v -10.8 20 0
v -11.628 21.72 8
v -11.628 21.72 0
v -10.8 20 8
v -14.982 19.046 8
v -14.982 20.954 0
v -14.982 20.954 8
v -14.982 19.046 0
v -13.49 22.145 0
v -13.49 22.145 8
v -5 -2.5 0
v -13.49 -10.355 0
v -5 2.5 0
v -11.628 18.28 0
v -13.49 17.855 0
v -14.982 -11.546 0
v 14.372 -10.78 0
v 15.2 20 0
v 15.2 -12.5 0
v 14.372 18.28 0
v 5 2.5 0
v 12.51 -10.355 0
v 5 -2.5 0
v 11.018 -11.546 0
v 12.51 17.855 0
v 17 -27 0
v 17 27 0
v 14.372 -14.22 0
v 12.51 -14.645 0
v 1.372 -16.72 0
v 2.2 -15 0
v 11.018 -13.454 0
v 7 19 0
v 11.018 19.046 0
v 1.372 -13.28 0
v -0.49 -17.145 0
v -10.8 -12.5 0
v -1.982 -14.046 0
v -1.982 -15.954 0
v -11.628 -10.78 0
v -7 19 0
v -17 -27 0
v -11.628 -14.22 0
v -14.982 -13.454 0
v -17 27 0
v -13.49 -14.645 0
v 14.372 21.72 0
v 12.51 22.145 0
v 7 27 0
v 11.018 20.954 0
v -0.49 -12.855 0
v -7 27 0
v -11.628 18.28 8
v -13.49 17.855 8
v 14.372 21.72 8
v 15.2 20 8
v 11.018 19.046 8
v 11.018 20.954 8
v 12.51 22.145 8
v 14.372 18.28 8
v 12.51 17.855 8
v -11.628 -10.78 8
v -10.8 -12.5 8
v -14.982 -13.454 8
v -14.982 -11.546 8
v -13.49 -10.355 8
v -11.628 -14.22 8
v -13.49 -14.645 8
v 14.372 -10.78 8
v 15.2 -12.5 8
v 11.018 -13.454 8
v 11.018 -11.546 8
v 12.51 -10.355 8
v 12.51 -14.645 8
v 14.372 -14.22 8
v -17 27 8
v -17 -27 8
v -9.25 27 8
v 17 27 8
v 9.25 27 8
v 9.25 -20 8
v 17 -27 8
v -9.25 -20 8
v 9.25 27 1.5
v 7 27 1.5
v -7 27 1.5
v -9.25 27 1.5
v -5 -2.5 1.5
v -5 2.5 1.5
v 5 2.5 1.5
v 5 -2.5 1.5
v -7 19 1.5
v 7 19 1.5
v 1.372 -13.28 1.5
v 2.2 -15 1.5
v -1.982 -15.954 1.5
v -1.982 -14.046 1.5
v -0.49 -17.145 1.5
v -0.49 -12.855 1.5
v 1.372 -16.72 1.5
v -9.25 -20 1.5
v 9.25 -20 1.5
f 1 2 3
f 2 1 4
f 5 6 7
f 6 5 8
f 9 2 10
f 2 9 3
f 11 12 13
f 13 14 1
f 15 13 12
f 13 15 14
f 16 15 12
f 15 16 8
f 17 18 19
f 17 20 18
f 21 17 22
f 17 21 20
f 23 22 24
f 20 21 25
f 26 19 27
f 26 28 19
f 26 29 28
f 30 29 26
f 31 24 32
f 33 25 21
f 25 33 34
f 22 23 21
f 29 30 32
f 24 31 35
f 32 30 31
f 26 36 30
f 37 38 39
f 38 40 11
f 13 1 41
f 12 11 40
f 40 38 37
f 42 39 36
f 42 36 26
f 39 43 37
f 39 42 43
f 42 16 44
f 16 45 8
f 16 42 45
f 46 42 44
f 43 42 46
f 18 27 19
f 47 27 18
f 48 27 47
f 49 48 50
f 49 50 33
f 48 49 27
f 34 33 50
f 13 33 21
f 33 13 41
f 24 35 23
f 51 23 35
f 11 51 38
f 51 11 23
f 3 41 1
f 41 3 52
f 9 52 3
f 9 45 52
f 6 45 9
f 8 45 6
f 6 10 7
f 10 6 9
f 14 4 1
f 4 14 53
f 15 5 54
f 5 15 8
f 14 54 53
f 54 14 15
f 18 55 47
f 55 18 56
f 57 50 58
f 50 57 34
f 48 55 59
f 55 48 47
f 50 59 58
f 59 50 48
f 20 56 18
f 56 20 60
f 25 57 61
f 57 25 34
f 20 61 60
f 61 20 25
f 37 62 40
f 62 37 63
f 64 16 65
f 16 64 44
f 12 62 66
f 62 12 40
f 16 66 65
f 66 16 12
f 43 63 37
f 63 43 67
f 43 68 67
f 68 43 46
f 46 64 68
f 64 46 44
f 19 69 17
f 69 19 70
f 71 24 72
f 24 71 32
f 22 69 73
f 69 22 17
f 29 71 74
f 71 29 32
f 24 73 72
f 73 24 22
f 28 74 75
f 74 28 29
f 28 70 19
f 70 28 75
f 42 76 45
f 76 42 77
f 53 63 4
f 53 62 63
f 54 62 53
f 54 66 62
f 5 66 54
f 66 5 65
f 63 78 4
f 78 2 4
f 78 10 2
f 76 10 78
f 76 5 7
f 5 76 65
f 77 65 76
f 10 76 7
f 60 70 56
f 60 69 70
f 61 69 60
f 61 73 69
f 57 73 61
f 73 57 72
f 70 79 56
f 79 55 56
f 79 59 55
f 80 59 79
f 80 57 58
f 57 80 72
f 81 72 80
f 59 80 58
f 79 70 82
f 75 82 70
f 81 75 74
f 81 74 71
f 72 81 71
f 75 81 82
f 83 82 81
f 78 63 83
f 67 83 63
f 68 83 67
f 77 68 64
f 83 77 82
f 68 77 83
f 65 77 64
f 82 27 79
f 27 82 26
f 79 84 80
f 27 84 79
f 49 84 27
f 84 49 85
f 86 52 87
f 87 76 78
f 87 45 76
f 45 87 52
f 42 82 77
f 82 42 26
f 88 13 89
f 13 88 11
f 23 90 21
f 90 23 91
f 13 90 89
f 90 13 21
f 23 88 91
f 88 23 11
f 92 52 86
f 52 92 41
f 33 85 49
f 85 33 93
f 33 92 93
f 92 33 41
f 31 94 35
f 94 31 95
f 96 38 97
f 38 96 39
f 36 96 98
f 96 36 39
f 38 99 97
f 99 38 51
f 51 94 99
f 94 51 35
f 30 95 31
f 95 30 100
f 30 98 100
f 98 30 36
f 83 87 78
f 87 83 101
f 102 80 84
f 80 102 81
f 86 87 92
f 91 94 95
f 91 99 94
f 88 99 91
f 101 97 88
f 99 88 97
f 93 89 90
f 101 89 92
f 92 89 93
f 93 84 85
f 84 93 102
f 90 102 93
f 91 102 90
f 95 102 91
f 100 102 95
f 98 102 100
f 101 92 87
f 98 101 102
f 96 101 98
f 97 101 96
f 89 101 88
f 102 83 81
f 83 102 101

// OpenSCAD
module base(){
    translate([-17, -27, 0]){
        cube([34, 54, 8]);
    }
};

module window(){
    translate([-5, -2.5, 0]){
        cube([10, 5, 10]);
    }
};

module notch(){
    translate([-7, 19, 0]){
        cube([14, 8, 10]);
    }
};

module hole(){
    cylinder(10, 2.2, 2.2, 0);
};

module reset(){
    translate([0, -15, 0]){
        hole();
    }
};

module screws(){
    translate([-13, 20, 0]){
        hole();
    }
    translate([13, 20, 0]){
        hole();
    }
    translate([-13, -12.5, 0]){
        hole();
    }
    translate([13, -12.5, 0]){
        hole();
    }
};

module middle(){
    translate([-9.25, -20, 1.5]){
        cube([18.5, 48, 10]);
    }
};

module top(){
    difference(){
        base();
        window();
        notch();
        reset();
        screws();
        middle();
    }
}

top();
